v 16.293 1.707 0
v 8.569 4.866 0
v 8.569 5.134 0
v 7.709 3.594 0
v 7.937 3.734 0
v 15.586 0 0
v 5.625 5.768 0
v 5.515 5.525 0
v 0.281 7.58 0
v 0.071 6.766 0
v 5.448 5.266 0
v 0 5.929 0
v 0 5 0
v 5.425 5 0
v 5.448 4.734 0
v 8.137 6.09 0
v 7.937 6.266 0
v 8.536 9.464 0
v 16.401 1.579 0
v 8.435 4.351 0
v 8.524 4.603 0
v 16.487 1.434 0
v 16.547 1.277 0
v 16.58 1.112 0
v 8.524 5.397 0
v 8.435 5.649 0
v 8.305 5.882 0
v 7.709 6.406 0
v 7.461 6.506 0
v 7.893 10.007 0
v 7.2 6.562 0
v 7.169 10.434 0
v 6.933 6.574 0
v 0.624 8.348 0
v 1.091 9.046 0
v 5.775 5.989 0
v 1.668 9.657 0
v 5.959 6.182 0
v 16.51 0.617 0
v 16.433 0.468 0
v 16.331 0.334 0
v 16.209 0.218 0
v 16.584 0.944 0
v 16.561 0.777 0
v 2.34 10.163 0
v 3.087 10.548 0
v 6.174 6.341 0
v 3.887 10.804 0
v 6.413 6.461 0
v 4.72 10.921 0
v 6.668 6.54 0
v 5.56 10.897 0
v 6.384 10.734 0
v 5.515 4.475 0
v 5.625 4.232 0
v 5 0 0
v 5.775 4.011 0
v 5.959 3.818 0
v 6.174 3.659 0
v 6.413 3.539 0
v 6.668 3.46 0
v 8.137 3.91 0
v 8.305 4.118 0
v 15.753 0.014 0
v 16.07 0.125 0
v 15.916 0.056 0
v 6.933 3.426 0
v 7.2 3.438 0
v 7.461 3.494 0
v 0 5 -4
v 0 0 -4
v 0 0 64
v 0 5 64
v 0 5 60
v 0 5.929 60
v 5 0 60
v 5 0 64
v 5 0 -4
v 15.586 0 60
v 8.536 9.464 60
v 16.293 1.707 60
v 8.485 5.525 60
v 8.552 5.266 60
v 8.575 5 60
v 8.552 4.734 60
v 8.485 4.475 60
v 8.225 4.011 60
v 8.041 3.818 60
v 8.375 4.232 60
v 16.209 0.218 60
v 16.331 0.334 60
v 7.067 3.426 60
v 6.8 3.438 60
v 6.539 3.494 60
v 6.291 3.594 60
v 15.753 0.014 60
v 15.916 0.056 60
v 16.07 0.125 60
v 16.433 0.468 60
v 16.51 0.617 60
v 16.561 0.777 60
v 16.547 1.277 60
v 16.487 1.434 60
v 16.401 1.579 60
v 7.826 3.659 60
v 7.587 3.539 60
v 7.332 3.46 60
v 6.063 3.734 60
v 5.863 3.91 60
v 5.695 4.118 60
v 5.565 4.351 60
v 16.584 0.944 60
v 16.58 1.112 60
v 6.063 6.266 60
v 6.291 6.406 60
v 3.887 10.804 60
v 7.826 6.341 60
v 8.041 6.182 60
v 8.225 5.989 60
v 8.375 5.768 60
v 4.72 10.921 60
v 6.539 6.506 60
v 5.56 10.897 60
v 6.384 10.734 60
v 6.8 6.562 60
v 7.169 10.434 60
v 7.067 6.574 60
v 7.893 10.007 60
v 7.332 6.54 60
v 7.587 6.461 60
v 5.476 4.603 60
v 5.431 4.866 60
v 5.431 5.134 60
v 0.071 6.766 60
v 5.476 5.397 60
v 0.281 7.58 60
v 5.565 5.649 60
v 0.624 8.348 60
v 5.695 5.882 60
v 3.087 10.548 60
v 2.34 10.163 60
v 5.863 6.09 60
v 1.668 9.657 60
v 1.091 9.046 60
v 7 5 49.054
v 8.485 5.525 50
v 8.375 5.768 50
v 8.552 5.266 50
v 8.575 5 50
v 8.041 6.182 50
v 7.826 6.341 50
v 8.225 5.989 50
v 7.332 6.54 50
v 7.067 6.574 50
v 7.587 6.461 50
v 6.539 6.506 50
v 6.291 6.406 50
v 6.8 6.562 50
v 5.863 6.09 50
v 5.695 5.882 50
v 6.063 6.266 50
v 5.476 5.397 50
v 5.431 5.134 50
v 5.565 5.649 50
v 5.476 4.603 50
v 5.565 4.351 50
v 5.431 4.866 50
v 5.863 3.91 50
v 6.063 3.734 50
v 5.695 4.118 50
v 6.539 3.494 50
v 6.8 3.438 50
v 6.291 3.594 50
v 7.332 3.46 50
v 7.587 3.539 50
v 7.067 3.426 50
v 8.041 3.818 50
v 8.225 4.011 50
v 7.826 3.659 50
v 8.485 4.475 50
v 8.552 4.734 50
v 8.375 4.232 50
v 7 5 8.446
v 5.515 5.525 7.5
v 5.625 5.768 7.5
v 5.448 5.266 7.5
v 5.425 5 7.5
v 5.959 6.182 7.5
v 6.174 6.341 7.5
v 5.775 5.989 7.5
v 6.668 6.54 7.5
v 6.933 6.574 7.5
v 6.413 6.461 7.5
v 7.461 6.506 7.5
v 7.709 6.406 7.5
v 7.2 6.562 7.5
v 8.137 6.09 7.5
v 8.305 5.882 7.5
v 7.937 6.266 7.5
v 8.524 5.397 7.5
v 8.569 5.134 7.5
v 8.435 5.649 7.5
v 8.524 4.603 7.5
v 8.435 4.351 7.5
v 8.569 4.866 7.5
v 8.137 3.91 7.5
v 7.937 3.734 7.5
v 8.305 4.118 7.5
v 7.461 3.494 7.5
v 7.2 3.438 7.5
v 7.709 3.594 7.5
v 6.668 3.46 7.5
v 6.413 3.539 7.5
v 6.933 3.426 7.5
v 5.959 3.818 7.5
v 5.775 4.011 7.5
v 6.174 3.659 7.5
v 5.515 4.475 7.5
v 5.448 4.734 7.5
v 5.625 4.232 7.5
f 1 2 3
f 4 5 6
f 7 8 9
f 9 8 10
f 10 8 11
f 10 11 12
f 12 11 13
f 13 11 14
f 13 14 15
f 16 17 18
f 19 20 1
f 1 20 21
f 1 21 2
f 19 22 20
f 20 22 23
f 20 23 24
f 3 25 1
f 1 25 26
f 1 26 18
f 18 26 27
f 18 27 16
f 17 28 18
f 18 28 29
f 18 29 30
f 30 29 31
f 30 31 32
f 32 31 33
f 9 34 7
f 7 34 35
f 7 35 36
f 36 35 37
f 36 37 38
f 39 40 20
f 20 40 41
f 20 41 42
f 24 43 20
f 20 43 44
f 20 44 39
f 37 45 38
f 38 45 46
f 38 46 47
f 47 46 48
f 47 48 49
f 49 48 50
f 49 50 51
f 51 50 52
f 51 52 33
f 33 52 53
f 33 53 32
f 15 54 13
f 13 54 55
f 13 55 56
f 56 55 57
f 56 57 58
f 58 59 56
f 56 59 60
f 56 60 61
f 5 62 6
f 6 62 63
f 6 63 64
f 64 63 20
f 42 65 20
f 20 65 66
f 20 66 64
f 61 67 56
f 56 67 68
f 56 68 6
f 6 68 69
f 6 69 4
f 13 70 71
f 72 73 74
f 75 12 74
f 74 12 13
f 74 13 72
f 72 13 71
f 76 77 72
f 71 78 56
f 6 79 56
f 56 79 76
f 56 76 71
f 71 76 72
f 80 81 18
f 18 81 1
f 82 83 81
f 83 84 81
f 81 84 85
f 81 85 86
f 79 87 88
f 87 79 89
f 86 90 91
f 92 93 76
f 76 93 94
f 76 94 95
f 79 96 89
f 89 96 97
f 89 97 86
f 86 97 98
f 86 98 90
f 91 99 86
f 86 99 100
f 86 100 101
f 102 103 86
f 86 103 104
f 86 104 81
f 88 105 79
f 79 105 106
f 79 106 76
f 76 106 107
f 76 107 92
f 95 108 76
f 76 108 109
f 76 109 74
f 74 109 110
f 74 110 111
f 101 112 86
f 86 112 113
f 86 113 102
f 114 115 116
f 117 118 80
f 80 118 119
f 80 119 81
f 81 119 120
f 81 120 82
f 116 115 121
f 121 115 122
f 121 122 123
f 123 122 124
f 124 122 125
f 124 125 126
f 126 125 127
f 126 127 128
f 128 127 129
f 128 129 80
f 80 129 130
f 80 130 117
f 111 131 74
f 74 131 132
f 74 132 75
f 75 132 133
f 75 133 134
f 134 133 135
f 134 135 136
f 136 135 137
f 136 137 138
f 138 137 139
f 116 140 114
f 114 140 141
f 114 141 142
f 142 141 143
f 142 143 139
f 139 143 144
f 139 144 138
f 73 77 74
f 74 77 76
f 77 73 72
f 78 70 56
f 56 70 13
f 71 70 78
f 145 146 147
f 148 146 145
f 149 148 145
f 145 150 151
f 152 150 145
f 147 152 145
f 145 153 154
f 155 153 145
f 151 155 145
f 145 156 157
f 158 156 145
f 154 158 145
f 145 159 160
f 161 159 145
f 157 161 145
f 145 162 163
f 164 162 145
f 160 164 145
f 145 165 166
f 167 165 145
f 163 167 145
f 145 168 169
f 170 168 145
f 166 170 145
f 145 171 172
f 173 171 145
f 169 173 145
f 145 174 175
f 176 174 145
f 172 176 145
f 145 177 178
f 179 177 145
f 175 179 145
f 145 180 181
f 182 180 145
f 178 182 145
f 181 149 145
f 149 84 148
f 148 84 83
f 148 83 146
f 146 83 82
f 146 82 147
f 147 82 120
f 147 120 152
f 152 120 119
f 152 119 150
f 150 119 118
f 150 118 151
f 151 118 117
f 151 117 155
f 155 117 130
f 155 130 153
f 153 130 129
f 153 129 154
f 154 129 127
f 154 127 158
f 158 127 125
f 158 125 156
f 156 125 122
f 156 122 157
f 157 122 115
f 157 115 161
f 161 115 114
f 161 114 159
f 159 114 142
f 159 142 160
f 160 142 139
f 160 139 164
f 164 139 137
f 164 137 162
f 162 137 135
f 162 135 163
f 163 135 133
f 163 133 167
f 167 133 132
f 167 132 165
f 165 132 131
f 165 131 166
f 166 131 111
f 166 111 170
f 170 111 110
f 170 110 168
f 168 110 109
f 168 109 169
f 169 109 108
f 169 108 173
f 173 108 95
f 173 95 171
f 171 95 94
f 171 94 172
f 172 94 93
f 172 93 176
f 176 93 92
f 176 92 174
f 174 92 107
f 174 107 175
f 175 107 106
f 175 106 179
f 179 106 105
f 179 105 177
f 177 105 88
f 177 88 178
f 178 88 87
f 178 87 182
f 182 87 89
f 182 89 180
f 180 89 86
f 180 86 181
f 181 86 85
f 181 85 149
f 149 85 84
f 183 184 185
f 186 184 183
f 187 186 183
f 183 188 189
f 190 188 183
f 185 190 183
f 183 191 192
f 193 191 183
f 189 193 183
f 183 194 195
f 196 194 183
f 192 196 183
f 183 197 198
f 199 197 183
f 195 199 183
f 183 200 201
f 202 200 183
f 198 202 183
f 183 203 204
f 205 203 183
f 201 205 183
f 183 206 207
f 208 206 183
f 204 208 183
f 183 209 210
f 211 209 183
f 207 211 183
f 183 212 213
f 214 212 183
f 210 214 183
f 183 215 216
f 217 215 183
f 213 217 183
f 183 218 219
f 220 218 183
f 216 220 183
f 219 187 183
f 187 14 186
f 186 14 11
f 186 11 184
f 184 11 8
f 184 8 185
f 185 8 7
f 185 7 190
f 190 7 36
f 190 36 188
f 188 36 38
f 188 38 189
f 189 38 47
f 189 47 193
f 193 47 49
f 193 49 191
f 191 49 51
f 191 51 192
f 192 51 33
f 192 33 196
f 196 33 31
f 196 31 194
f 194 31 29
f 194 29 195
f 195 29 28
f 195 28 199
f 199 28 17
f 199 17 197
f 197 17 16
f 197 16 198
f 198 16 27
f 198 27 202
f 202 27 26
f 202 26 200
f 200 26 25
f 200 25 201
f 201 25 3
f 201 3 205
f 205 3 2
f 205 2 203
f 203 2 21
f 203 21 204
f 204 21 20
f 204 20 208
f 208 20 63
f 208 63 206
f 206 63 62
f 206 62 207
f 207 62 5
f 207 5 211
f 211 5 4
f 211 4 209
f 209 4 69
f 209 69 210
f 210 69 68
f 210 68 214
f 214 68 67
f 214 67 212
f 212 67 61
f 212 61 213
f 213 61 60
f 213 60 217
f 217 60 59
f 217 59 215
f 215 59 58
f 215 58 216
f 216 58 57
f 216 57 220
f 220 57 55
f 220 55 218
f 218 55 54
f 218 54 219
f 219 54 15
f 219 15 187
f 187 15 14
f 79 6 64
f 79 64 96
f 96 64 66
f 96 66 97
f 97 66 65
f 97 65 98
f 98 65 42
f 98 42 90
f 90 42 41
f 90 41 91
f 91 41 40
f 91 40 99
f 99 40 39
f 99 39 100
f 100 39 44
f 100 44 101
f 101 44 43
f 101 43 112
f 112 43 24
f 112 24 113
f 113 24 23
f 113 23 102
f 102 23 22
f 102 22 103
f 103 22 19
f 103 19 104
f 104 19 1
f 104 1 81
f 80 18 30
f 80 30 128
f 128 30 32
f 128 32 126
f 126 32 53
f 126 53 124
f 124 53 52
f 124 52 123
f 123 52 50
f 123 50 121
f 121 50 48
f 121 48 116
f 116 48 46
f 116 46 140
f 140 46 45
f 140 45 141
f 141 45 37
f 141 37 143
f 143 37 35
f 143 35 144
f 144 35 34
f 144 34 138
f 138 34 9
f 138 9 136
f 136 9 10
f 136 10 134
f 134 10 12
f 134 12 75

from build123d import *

# Parameters (mm, degrees)
RESSALTO_EXTRUS_O1_DEPTH                    = 60
RESSALTO_EXTRUS_O2_DEPTH                    = 4
RESSALTO_EXTRUS_O3_DEPTH                    = 4
FURO_ROSCADO_PARA_CONDU_TE_DE_M3X0_51_D     = 3.15
FURO_ROSCADO_PARA_CONDU_TE_DE_M3X0_51_DEPTH = 10
FURO_ROSCADO_PARA_CONDU_TE_DE_M3X0_51_TIP   = 0.946355475
FURO_ROSCADO_PARA_CONDU_TE_DE_M3X0_52_D     = 3.15
FURO_ROSCADO_PARA_CONDU_TE_DE_M3X0_52_DEPTH = 7.5
FURO_ROSCADO_PARA_CONDU_TE_DE_M3X0_52_TIP   = 0.946355475
FILETE1_R                                   = 1
FILETE2_R                                   = 5


with BuildPart() as part:
    # Esboço1 → Ressalto-extrusão1 (new body)
    with BuildSketch(Plane.XY):
        Polygon((0, 0), (18, 0), (0, 18), align=None)
    extrude(amount=RESSALTO_EXTRUS_O1_DEPTH)

    # Esboço2 → Ressalto-extrusão2 (add)
    with BuildSketch(Plane.XY.offset(60)):
        Polygon((0, 0), (0, 5), (5, 0), align=None)
    extrude(amount=RESSALTO_EXTRUS_O2_DEPTH)

    # Esboço3 → Ressalto-extrusão3 (add)
    with BuildSketch(Plane(origin=(0, 0, 0), x_dir=(-1, 0, 0), z_dir=(0, 0, -1))):
        Polygon((0, 0), (0, 5), (-5, 0), align=None)
    extrude(amount=RESSALTO_EXTRUS_O3_DEPTH)

    # Furo roscado para conduíte de M3x0.51
    with Locations(Plane.XY.offset(60)):
        with Locations((7, 5)):
            Hole(FURO_ROSCADO_PARA_CONDU_TE_DE_M3X0_51_D / 2, depth=FURO_ROSCADO_PARA_CONDU_TE_DE_M3X0_51_DEPTH)
            with Locations((0, 0, -(FURO_ROSCADO_PARA_CONDU_TE_DE_M3X0_51_DEPTH + FURO_ROSCADO_PARA_CONDU_TE_DE_M3X0_51_TIP / 2))):  # 118° drill point
                Cone(0, FURO_ROSCADO_PARA_CONDU_TE_DE_M3X0_51_D / 2, FURO_ROSCADO_PARA_CONDU_TE_DE_M3X0_51_TIP, mode=Mode.SUBTRACT)

    # Furo roscado para conduíte de M3x0.52
    with Locations(Plane(origin=(0, 0, 0), x_dir=(-1, 0, 0), z_dir=(0, 0, -1))):
        with Locations((-7, 5)):
            Hole(FURO_ROSCADO_PARA_CONDU_TE_DE_M3X0_52_D / 2, depth=FURO_ROSCADO_PARA_CONDU_TE_DE_M3X0_52_DEPTH)
            with Locations((0, 0, -(FURO_ROSCADO_PARA_CONDU_TE_DE_M3X0_52_DEPTH + FURO_ROSCADO_PARA_CONDU_TE_DE_M3X0_52_TIP / 2))):  # 118° drill point
                Cone(0, FURO_ROSCADO_PARA_CONDU_TE_DE_M3X0_52_D / 2, FURO_ROSCADO_PARA_CONDU_TE_DE_M3X0_52_TIP, mode=Mode.SUBTRACT)

    # Filete1
    filete1_edges = [part.edges().sort_by_distance(p)[0] for p in [
        (18, 0, 30),
    ]]
    fillet(filete1_edges, radius=FILETE1_R)

    # Filete2
    filete2_edges = [part.edges().sort_by_distance(p)[0] for p in [
        (0, 18, 30),
    ]]
    fillet(filete2_edges, radius=FILETE2_R)


solid = part.part
